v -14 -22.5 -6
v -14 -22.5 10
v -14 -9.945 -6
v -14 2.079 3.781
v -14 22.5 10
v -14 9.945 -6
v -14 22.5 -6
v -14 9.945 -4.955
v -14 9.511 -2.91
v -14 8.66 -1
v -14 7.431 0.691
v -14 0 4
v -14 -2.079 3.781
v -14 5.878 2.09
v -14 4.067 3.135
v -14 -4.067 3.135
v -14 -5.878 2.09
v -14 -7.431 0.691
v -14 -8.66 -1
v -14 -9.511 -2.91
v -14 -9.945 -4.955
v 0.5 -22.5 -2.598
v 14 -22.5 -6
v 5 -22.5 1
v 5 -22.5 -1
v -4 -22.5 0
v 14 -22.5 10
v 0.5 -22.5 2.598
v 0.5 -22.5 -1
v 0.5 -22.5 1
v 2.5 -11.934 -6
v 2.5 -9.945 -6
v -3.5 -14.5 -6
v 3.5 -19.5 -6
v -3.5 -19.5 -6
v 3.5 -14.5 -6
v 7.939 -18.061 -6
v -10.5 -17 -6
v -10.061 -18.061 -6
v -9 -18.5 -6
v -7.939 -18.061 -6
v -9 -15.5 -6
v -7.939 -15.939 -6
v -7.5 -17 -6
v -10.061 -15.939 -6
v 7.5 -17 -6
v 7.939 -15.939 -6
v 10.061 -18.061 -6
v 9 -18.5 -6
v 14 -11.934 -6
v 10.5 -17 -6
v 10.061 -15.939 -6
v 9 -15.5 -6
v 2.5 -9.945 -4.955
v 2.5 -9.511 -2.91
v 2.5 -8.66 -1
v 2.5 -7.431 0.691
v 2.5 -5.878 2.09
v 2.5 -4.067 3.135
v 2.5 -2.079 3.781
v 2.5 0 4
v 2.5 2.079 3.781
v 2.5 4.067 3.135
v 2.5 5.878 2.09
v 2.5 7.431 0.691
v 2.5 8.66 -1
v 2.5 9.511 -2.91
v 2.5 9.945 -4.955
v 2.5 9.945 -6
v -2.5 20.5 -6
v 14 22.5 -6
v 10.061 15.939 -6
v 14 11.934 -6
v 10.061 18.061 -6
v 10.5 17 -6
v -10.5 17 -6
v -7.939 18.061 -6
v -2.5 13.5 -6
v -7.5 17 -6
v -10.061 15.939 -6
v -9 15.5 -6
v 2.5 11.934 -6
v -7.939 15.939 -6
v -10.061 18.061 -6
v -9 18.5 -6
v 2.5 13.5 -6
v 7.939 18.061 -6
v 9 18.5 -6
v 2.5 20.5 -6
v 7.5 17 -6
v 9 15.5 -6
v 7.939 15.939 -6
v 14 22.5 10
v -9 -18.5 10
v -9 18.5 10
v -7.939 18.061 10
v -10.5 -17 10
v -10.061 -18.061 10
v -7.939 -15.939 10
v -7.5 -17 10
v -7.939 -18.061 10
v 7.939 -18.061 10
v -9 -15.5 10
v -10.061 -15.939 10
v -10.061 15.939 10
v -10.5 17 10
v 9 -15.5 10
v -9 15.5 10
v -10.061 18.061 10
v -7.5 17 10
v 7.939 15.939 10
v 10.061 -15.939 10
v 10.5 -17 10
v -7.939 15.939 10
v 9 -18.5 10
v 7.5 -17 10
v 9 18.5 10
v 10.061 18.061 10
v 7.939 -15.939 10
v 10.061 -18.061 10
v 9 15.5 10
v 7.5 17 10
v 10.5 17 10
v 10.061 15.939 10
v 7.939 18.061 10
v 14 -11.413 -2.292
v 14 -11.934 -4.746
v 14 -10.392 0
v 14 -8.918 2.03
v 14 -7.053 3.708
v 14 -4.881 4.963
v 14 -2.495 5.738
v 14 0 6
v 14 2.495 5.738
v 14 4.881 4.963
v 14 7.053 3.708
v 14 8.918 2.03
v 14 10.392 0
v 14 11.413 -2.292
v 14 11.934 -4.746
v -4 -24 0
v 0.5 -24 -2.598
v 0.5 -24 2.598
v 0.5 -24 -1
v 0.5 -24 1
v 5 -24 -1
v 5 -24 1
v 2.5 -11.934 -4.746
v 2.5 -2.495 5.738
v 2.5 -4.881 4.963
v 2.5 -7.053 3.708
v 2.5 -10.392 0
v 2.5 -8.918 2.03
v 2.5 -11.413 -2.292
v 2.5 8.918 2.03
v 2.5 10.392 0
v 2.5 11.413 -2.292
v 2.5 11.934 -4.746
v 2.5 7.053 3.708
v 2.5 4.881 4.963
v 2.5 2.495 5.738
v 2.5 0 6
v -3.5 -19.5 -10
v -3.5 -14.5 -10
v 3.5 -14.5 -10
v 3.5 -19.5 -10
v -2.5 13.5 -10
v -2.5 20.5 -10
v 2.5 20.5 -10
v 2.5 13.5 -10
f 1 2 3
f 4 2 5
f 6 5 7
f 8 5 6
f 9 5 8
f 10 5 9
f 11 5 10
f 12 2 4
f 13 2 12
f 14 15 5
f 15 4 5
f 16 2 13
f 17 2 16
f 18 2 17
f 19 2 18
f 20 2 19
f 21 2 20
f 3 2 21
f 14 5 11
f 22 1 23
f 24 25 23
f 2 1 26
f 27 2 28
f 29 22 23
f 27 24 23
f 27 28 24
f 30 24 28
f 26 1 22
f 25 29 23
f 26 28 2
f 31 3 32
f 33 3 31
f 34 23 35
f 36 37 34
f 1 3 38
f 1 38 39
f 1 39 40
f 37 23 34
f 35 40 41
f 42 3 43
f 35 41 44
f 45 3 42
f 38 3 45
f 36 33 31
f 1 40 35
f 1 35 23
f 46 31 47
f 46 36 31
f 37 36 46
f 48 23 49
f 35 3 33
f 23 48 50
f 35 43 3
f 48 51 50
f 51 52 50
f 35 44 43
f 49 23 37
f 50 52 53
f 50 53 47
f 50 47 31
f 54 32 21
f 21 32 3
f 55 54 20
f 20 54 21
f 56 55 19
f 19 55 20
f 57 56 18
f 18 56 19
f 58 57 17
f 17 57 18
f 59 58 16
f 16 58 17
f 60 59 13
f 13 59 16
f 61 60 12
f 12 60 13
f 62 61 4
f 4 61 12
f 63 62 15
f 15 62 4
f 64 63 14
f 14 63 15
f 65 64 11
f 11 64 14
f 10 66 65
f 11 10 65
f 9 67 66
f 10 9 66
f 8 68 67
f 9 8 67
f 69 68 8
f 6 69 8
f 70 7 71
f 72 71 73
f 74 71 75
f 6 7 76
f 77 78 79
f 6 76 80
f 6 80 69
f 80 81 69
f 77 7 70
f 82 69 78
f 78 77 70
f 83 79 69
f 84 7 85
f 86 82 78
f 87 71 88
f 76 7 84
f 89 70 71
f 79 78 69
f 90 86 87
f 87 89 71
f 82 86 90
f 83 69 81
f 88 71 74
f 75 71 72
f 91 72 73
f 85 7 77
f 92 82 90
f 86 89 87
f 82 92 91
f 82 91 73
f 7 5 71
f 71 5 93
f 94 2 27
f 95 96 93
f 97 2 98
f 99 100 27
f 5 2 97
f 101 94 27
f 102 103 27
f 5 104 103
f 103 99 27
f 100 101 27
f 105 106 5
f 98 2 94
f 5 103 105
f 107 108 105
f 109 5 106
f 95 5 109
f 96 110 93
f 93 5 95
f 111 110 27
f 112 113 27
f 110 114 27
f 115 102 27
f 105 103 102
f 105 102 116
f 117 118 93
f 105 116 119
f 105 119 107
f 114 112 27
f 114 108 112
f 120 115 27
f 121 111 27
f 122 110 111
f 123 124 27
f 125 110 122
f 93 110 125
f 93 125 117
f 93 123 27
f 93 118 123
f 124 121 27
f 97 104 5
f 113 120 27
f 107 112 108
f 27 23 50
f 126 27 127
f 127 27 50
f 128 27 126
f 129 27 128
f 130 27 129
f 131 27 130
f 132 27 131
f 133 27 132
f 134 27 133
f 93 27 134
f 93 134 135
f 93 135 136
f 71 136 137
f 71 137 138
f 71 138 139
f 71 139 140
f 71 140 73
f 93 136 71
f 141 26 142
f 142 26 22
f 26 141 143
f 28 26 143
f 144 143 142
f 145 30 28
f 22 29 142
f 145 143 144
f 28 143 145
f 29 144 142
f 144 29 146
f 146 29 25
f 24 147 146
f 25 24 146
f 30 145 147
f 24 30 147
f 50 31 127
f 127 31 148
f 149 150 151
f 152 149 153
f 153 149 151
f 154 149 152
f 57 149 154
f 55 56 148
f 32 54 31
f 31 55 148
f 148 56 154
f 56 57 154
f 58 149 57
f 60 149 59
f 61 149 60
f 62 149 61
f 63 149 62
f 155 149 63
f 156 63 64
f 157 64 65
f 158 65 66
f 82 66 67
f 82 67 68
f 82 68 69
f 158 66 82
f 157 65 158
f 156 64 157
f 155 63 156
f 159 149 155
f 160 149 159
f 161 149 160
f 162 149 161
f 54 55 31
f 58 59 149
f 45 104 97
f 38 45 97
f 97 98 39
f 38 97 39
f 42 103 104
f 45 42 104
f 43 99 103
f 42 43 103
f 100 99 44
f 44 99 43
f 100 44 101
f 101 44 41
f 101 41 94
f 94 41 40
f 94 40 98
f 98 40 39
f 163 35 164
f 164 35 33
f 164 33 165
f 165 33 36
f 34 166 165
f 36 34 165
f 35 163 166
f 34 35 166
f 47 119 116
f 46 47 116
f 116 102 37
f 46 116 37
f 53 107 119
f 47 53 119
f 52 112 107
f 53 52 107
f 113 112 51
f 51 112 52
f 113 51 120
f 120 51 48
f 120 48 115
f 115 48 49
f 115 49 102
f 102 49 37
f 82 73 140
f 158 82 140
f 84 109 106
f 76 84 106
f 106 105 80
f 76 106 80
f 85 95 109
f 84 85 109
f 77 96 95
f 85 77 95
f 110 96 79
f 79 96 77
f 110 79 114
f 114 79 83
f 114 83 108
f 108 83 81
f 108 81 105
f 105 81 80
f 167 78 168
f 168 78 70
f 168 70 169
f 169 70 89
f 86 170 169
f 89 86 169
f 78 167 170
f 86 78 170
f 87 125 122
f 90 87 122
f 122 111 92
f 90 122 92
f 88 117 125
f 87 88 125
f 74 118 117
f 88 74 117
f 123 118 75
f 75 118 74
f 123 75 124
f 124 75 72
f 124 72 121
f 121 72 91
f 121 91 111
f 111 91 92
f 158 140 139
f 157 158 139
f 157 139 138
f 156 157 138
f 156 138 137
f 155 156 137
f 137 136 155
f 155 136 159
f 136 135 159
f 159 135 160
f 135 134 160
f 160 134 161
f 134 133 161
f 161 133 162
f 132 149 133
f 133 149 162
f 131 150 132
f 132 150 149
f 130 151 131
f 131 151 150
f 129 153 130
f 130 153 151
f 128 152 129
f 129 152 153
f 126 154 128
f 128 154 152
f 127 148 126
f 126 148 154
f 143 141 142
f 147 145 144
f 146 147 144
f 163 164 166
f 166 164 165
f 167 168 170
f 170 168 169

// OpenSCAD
// file: arrow.scad
module arrow(){
	//arrowBody
	translate([0,-1,0]) color([0,1,1]) cube(size=[2.5,2,5]);
	//arrowHead
	translate([0,0,-1]) color([0,1,1]) rotate([0,90,0]) cylinder(h=2.5,r=3,$fn=3);
}

arrow();
// main file
use <arrow.scad>

module objectiveLensMountTop(){
	difference(){
		//mainBody
		translate([0,0,2]) color([0,.6,.5]) cube(size=[28,45,16],center=true);
		//lensHole
		translate([9,0,-6]) rotate([0,90,0]) cylinder(h=13,r=12,center=true);
		translate([-6,0,-6]) rotate([0,90,0]) cylinder(h=18,r=10,center=true);
		//screwHoles
		translate([-9,17,2]) color([1,0,0]) cylinder(h=18,r=1.5,$fn=8,center=true);
		translate([9,17,2]) color([1,0,0]) cylinder(h=18,r=1.5,$fn=8,center=true);
		translate([-9,-17,2]) color([1,0,0]) cylinder(h=18,r=1.5,$fn=8,center=true);
		translate([9,-17,2]) color([1,0,0]) cylinder(h=18,r=1.5,$fn=8,center=true);
	}
	translate([0,-24,0]){
		rotate([90,0,90]){
			arrow();
		}
	}
	//keys
	translate([0,17,-8]) cube(size=[5,7,4],center=true);
	translate([0,-17,-8]) cube(size=[7,5,4],center=true);
}

translate([0,0,0]){
	objectiveLensMountTop();
}
